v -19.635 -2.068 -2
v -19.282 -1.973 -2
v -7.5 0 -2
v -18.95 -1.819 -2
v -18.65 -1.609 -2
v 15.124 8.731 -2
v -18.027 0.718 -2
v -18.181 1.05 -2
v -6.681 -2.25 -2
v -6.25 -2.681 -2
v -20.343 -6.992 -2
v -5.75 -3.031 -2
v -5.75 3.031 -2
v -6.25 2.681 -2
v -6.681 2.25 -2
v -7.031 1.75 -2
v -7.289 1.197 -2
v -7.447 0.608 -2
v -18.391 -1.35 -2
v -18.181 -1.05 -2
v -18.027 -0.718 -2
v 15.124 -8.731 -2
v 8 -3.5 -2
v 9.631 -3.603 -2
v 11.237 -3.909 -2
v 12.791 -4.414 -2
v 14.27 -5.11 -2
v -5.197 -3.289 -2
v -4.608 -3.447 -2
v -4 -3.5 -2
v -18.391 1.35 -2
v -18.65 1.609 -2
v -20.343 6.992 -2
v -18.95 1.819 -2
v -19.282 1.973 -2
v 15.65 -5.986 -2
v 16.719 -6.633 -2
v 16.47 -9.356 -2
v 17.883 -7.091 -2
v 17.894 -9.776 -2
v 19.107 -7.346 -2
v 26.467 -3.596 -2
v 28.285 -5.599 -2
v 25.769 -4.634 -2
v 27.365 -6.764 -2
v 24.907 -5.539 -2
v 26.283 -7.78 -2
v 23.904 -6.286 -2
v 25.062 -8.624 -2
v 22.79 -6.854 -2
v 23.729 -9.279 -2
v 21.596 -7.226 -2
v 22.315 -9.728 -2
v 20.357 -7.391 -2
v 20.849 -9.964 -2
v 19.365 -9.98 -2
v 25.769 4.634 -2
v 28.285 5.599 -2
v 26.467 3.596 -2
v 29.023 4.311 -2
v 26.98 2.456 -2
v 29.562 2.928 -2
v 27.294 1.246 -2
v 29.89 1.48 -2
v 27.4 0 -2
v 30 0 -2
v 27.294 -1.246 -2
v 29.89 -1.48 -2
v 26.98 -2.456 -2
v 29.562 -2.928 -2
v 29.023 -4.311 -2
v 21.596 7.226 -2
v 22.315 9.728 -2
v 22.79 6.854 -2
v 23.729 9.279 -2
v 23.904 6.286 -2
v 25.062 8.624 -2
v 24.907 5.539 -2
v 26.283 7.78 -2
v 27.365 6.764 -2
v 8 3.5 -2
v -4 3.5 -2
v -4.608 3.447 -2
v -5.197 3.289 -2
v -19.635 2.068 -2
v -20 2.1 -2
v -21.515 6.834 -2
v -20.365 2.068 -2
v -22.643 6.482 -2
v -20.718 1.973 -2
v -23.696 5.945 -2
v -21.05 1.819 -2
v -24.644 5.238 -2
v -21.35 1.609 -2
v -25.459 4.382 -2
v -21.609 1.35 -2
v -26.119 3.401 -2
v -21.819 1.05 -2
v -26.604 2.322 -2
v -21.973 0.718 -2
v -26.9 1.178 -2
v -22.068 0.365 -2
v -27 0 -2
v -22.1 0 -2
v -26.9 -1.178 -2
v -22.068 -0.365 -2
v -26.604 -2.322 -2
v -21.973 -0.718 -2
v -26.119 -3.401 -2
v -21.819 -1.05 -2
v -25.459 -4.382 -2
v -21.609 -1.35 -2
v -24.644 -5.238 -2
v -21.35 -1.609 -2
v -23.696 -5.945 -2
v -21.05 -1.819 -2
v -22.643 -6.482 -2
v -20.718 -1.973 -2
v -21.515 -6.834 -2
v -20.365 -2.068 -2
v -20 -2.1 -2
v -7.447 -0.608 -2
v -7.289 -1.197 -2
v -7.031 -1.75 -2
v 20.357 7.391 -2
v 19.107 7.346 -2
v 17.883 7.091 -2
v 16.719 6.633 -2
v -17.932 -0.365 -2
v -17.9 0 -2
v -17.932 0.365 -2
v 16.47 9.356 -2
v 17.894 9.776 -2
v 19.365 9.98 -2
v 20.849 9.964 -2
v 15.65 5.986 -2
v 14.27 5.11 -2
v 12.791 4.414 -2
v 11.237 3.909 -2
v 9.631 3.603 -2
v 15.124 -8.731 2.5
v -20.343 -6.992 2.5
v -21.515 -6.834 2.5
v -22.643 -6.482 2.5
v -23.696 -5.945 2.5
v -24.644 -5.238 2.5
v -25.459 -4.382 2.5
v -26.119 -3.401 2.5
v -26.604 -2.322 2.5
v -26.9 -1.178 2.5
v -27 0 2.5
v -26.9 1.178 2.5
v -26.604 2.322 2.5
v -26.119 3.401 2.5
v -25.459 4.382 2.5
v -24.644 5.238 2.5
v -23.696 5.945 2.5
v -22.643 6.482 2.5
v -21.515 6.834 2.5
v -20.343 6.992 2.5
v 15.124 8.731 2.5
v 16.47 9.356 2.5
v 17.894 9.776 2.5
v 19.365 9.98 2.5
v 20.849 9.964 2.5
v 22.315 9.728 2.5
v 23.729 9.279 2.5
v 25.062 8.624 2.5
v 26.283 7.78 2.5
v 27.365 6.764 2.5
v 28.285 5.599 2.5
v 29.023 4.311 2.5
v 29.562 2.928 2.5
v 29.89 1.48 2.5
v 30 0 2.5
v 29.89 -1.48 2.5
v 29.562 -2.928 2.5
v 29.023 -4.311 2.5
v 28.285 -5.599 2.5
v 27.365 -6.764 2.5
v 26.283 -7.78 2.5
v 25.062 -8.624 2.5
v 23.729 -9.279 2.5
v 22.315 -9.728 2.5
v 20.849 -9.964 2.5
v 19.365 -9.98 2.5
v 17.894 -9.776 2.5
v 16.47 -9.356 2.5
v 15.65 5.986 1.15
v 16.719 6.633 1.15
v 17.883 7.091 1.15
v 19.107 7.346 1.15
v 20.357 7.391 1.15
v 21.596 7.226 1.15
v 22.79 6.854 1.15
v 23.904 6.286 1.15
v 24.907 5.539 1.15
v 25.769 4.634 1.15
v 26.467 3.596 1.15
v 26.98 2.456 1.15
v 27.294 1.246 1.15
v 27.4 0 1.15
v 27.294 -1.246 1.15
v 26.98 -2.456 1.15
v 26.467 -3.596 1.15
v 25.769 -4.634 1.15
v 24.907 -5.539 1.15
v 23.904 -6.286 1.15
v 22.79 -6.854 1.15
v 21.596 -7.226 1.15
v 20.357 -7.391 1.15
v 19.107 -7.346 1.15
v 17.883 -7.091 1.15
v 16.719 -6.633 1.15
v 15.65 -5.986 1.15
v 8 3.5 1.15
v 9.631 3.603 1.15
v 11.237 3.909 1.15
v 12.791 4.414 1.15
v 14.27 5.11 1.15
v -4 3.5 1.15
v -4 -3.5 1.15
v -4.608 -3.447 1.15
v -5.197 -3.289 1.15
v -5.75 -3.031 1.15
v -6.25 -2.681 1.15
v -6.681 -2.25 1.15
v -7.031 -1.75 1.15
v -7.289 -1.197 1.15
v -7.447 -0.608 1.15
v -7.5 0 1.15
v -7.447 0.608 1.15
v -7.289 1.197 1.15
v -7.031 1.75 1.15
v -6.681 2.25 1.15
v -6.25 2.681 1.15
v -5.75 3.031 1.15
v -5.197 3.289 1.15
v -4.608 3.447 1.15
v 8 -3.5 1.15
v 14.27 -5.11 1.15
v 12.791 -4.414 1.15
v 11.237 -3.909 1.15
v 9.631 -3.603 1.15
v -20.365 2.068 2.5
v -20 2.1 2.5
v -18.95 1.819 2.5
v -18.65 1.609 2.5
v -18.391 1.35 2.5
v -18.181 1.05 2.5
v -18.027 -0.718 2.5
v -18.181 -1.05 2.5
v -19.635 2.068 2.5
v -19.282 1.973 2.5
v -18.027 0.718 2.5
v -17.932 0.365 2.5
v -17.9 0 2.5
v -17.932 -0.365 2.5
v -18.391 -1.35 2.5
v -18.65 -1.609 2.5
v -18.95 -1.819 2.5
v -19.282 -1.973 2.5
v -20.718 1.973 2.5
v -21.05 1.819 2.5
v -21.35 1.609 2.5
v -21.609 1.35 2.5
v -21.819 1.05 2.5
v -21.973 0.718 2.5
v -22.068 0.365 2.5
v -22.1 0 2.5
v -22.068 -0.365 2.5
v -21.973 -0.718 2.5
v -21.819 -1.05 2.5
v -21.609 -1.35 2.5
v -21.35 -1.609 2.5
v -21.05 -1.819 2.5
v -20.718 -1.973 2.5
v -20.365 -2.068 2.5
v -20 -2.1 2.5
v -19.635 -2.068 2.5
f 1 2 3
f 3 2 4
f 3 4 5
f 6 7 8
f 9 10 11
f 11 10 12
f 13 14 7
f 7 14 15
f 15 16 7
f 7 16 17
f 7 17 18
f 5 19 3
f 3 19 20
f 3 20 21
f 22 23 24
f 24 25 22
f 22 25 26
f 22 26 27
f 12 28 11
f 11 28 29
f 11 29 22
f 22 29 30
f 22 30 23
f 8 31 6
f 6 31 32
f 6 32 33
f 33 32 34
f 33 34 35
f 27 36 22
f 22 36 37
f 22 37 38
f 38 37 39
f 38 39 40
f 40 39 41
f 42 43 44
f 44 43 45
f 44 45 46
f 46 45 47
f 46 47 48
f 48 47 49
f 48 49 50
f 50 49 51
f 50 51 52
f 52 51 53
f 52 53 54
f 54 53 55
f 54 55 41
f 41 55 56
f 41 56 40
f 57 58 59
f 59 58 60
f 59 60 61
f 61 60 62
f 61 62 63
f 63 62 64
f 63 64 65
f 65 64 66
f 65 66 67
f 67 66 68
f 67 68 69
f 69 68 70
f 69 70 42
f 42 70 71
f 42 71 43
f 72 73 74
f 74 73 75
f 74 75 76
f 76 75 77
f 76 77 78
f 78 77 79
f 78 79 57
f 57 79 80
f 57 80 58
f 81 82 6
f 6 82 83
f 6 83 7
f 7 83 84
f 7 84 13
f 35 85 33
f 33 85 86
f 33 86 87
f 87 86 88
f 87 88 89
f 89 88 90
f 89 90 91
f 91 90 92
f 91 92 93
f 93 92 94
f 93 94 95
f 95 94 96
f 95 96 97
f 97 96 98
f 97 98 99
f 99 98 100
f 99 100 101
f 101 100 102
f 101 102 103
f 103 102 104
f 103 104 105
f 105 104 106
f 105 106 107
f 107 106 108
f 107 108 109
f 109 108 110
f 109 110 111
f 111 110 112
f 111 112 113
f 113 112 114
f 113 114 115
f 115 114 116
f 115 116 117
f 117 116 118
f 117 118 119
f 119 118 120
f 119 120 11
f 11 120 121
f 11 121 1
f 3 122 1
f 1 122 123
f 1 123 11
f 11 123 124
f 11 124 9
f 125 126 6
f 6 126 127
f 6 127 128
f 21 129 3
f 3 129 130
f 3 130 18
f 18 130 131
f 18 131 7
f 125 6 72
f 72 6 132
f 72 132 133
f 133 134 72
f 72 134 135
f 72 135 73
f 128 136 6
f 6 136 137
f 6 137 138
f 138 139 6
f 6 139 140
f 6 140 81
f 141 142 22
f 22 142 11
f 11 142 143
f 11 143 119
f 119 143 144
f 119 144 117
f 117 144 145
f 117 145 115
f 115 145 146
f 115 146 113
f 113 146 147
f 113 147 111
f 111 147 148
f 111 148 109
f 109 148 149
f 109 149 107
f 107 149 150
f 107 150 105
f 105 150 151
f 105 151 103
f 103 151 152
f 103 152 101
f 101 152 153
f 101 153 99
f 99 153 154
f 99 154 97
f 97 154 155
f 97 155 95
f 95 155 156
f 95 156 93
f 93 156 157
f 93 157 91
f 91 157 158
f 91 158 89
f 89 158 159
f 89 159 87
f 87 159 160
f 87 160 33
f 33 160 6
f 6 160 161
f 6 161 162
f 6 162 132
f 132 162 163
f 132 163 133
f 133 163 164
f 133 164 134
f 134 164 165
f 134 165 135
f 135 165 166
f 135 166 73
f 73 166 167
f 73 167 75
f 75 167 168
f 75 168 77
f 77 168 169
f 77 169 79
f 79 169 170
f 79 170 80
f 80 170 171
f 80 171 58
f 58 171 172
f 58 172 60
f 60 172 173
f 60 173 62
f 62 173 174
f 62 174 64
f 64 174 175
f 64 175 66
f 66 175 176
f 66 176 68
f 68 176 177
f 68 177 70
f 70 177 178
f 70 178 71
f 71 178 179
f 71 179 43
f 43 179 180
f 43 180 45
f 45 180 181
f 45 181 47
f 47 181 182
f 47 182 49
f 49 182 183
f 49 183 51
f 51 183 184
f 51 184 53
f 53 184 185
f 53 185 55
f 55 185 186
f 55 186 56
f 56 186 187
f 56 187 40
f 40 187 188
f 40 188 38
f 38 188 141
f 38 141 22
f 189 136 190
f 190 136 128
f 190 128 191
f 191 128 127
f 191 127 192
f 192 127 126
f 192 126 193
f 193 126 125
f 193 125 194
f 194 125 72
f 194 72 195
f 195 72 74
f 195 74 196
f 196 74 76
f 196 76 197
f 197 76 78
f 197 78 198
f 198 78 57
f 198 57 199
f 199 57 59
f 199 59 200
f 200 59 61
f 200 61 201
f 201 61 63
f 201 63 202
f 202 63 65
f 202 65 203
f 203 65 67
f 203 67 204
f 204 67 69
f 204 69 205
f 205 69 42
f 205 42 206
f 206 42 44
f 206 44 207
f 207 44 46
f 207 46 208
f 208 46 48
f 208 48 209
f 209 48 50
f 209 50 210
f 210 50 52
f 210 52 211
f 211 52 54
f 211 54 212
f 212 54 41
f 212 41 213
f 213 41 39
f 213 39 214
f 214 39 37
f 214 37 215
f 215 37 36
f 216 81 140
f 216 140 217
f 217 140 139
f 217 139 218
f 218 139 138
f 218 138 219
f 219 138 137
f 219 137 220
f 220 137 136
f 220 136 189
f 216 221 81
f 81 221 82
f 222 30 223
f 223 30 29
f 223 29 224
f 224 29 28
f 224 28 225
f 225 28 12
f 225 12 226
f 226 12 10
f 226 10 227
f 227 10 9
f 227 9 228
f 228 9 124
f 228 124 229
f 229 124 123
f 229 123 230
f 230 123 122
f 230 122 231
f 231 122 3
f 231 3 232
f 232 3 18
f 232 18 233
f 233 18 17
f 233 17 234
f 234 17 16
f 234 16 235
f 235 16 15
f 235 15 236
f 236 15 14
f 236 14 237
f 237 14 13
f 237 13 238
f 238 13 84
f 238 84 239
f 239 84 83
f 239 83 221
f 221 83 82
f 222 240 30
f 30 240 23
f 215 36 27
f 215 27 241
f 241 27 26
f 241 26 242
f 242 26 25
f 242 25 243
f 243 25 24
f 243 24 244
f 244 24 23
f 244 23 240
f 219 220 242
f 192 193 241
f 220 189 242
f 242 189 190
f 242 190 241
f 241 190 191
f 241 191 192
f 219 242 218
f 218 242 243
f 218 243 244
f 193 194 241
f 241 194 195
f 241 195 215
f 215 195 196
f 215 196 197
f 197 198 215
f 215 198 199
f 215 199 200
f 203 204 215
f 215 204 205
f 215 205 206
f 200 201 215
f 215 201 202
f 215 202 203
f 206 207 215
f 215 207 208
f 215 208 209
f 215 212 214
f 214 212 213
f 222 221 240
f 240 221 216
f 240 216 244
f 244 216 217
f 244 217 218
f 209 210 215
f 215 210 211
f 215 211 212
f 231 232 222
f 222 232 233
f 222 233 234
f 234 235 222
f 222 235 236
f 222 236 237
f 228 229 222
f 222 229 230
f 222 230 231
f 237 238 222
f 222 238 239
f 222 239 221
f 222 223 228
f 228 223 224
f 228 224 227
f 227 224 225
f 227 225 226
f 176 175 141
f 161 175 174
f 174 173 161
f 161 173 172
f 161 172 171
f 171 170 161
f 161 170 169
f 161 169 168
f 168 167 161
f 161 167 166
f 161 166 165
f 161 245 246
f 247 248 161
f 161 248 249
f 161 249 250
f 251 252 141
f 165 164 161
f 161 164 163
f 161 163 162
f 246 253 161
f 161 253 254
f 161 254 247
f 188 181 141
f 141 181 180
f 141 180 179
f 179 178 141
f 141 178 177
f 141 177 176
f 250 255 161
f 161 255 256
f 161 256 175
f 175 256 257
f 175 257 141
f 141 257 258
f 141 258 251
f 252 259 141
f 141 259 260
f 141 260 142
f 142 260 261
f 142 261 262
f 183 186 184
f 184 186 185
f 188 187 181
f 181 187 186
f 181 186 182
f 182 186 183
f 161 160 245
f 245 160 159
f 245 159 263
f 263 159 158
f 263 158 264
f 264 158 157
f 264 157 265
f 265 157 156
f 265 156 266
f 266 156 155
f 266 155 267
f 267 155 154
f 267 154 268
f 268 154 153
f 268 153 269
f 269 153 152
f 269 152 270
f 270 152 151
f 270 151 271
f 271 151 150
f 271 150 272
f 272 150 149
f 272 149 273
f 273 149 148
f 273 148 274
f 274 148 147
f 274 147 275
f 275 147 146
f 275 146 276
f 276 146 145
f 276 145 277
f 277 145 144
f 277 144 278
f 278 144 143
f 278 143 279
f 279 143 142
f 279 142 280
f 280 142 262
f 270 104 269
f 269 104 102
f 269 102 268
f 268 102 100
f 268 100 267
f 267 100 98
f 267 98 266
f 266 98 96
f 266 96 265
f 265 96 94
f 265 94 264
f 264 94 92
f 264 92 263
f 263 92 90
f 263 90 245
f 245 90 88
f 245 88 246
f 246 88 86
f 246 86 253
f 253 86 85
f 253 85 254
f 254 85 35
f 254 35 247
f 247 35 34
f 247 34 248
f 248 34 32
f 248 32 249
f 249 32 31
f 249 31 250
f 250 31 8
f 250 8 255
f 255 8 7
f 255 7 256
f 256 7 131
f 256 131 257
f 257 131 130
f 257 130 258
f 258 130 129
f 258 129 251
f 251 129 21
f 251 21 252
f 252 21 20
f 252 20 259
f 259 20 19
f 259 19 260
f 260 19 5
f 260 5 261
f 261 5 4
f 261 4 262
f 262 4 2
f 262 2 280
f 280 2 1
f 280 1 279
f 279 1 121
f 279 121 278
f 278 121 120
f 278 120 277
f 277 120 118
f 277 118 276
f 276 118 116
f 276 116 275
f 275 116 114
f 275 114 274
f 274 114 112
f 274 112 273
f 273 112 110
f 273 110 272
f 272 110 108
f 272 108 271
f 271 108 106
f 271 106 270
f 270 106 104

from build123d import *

# Parameters (mm, degrees)
BOSS_EXTRUDE1_DEPTH = 2
BOSS_EXTRUDE2_DEPTH = 4
CUT_EXTRUDE3_DEPTH  = 3.15
BOSS_EXTRUDE3_START = 0.5
BOSS_EXTRUDE3_DEPTH = 0.5
SKETCH8_R           = 2.1
CUT_EXTRUDE4_DEPTH  = 32.941352507


with BuildPart() as part:
    # Sketch1 → Boss-Extrude1 (new, symmetric)
    with BuildSketch(Plane.XY):
        with BuildLine():
            Line((16, 3), (-16, 3))
            ThreePointArc((-16, 3), (-25, 0), (-16, -3))
            Line((-16, -3), (16, -3))
            ThreePointArc((16, -3), (25, 0), (16, 3))
        make_face()
    extrude(amount=BOSS_EXTRUDE1_DEPTH, both=True)

    # Sketch3 → Boss-Extrude2 (add)
    with BuildSketch(Plane.XY.offset(2)):
        with BuildLine():
            ThreePointArc((-20.342845142, 6.991599045), (-27, 0), (-20.342845142, -6.991599045))
            Line((-20.342845142, -6.991599045), (15.124207365, -8.73078726))
            ThreePointArc((15.124207365, -8.73078726), (30, 0), (15.124207365, 8.73078726))
            Line((15.124207365, 8.73078726), (-20.342845142, 6.991599045))
        make_face()
        with BuildLine():
            ThreePointArc((-16, -3), (-25, 0), (-16, 3))
            Line((-16, 3), (16, 3))
            ThreePointArc((16, 3), (25, 0), (16, -3))
            Line((16, -3), (-16, -3))
        make_face(mode=Mode.SUBTRACT)
    extrude(amount=-BOSS_EXTRUDE2_DEPTH)

    # Sketch6 → Cut-Extrude3 (cut)
    with BuildSketch(Plane(origin=(0, 0, -2), x_dir=(-1, 0, 0), z_dir=(0, 0, -1))):
        with BuildLine():
            Line((-8, -3.5), (4, -3.5))
            ThreePointArc((4, -3.5), (7.5, 0), (4, 3.5))
            Line((4, 3.5), (-8, 3.5))
            ThreePointArc((-8, 3.5), (-12.021685318, 4.137122098), (-15.649519503, 5.986093838))
            ThreePointArc((-15.649519503, 5.986093838), (-27.4, 0), (-15.649519503, -5.986093838))
            ThreePointArc((-15.649519503, -5.986093838), (-12.021685318, -4.137122098), (-8, -3.5))
        make_face()
    extrude(amount=-CUT_EXTRUDE3_DEPTH, mode=Mode.SUBTRACT)

    # Sketch7 → Boss-Extrude3 (add)
    with BuildSketch(Plane.XY.offset(2).offset(BOSS_EXTRUDE3_START)):
        with BuildLine():
            ThreePointArc((-20.342845142, 6.991599045), (-27, 0), (-20.342845142, -6.991599045))
            ThreePointArc((-20.342845142, -6.991599045), (-15.172988295, -5.0695126), (-13, 0))
            ThreePointArc((-13, 0), (-15.172988295, 5.0695126), (-20.342845142, 6.991599045))
        make_face()
        with BuildLine():
            ThreePointArc((-13, 0), (-15.172988295, -5.0695126), (-20.342845142, -6.991599045))
            Line((-20.342845142, -6.991599045), (15.124207365, -8.73078726))
            ThreePointArc((15.124207365, -8.73078726), (10, 0), (15.124207365, 8.73078726))
            Line((15.124207365, 8.73078726), (-20.342845142, 6.991599045))
            ThreePointArc((-20.342845142, 6.991599045), (-15.172988295, 5.0695126), (-13, 0))
        make_face()
        with BuildLine():
            ThreePointArc((15.124207365, 8.73078726), (10, 0), (15.124207365, -8.73078726))
            ThreePointArc((15.124207365, -8.73078726), (25.061722713, -8.624323926), (30, 0))
            ThreePointArc((30, 0), (25.061722713, 8.624323926), (15.124207365, 8.73078726))
        make_face()
    extrude(amount=-BOSS_EXTRUDE3_DEPTH)

    # Sketch8 → Cut-Extrude4 (cut, through all)
    with BuildSketch(Plane(origin=(0, 0, -2), x_dir=(-1, 0, 0), z_dir=(0, 0, -1))):
        with Locations((20, 0)):
            Circle(SKETCH8_R)
    extrude(amount=-CUT_EXTRUDE4_DEPTH, mode=Mode.SUBTRACT)


solid = part.part
